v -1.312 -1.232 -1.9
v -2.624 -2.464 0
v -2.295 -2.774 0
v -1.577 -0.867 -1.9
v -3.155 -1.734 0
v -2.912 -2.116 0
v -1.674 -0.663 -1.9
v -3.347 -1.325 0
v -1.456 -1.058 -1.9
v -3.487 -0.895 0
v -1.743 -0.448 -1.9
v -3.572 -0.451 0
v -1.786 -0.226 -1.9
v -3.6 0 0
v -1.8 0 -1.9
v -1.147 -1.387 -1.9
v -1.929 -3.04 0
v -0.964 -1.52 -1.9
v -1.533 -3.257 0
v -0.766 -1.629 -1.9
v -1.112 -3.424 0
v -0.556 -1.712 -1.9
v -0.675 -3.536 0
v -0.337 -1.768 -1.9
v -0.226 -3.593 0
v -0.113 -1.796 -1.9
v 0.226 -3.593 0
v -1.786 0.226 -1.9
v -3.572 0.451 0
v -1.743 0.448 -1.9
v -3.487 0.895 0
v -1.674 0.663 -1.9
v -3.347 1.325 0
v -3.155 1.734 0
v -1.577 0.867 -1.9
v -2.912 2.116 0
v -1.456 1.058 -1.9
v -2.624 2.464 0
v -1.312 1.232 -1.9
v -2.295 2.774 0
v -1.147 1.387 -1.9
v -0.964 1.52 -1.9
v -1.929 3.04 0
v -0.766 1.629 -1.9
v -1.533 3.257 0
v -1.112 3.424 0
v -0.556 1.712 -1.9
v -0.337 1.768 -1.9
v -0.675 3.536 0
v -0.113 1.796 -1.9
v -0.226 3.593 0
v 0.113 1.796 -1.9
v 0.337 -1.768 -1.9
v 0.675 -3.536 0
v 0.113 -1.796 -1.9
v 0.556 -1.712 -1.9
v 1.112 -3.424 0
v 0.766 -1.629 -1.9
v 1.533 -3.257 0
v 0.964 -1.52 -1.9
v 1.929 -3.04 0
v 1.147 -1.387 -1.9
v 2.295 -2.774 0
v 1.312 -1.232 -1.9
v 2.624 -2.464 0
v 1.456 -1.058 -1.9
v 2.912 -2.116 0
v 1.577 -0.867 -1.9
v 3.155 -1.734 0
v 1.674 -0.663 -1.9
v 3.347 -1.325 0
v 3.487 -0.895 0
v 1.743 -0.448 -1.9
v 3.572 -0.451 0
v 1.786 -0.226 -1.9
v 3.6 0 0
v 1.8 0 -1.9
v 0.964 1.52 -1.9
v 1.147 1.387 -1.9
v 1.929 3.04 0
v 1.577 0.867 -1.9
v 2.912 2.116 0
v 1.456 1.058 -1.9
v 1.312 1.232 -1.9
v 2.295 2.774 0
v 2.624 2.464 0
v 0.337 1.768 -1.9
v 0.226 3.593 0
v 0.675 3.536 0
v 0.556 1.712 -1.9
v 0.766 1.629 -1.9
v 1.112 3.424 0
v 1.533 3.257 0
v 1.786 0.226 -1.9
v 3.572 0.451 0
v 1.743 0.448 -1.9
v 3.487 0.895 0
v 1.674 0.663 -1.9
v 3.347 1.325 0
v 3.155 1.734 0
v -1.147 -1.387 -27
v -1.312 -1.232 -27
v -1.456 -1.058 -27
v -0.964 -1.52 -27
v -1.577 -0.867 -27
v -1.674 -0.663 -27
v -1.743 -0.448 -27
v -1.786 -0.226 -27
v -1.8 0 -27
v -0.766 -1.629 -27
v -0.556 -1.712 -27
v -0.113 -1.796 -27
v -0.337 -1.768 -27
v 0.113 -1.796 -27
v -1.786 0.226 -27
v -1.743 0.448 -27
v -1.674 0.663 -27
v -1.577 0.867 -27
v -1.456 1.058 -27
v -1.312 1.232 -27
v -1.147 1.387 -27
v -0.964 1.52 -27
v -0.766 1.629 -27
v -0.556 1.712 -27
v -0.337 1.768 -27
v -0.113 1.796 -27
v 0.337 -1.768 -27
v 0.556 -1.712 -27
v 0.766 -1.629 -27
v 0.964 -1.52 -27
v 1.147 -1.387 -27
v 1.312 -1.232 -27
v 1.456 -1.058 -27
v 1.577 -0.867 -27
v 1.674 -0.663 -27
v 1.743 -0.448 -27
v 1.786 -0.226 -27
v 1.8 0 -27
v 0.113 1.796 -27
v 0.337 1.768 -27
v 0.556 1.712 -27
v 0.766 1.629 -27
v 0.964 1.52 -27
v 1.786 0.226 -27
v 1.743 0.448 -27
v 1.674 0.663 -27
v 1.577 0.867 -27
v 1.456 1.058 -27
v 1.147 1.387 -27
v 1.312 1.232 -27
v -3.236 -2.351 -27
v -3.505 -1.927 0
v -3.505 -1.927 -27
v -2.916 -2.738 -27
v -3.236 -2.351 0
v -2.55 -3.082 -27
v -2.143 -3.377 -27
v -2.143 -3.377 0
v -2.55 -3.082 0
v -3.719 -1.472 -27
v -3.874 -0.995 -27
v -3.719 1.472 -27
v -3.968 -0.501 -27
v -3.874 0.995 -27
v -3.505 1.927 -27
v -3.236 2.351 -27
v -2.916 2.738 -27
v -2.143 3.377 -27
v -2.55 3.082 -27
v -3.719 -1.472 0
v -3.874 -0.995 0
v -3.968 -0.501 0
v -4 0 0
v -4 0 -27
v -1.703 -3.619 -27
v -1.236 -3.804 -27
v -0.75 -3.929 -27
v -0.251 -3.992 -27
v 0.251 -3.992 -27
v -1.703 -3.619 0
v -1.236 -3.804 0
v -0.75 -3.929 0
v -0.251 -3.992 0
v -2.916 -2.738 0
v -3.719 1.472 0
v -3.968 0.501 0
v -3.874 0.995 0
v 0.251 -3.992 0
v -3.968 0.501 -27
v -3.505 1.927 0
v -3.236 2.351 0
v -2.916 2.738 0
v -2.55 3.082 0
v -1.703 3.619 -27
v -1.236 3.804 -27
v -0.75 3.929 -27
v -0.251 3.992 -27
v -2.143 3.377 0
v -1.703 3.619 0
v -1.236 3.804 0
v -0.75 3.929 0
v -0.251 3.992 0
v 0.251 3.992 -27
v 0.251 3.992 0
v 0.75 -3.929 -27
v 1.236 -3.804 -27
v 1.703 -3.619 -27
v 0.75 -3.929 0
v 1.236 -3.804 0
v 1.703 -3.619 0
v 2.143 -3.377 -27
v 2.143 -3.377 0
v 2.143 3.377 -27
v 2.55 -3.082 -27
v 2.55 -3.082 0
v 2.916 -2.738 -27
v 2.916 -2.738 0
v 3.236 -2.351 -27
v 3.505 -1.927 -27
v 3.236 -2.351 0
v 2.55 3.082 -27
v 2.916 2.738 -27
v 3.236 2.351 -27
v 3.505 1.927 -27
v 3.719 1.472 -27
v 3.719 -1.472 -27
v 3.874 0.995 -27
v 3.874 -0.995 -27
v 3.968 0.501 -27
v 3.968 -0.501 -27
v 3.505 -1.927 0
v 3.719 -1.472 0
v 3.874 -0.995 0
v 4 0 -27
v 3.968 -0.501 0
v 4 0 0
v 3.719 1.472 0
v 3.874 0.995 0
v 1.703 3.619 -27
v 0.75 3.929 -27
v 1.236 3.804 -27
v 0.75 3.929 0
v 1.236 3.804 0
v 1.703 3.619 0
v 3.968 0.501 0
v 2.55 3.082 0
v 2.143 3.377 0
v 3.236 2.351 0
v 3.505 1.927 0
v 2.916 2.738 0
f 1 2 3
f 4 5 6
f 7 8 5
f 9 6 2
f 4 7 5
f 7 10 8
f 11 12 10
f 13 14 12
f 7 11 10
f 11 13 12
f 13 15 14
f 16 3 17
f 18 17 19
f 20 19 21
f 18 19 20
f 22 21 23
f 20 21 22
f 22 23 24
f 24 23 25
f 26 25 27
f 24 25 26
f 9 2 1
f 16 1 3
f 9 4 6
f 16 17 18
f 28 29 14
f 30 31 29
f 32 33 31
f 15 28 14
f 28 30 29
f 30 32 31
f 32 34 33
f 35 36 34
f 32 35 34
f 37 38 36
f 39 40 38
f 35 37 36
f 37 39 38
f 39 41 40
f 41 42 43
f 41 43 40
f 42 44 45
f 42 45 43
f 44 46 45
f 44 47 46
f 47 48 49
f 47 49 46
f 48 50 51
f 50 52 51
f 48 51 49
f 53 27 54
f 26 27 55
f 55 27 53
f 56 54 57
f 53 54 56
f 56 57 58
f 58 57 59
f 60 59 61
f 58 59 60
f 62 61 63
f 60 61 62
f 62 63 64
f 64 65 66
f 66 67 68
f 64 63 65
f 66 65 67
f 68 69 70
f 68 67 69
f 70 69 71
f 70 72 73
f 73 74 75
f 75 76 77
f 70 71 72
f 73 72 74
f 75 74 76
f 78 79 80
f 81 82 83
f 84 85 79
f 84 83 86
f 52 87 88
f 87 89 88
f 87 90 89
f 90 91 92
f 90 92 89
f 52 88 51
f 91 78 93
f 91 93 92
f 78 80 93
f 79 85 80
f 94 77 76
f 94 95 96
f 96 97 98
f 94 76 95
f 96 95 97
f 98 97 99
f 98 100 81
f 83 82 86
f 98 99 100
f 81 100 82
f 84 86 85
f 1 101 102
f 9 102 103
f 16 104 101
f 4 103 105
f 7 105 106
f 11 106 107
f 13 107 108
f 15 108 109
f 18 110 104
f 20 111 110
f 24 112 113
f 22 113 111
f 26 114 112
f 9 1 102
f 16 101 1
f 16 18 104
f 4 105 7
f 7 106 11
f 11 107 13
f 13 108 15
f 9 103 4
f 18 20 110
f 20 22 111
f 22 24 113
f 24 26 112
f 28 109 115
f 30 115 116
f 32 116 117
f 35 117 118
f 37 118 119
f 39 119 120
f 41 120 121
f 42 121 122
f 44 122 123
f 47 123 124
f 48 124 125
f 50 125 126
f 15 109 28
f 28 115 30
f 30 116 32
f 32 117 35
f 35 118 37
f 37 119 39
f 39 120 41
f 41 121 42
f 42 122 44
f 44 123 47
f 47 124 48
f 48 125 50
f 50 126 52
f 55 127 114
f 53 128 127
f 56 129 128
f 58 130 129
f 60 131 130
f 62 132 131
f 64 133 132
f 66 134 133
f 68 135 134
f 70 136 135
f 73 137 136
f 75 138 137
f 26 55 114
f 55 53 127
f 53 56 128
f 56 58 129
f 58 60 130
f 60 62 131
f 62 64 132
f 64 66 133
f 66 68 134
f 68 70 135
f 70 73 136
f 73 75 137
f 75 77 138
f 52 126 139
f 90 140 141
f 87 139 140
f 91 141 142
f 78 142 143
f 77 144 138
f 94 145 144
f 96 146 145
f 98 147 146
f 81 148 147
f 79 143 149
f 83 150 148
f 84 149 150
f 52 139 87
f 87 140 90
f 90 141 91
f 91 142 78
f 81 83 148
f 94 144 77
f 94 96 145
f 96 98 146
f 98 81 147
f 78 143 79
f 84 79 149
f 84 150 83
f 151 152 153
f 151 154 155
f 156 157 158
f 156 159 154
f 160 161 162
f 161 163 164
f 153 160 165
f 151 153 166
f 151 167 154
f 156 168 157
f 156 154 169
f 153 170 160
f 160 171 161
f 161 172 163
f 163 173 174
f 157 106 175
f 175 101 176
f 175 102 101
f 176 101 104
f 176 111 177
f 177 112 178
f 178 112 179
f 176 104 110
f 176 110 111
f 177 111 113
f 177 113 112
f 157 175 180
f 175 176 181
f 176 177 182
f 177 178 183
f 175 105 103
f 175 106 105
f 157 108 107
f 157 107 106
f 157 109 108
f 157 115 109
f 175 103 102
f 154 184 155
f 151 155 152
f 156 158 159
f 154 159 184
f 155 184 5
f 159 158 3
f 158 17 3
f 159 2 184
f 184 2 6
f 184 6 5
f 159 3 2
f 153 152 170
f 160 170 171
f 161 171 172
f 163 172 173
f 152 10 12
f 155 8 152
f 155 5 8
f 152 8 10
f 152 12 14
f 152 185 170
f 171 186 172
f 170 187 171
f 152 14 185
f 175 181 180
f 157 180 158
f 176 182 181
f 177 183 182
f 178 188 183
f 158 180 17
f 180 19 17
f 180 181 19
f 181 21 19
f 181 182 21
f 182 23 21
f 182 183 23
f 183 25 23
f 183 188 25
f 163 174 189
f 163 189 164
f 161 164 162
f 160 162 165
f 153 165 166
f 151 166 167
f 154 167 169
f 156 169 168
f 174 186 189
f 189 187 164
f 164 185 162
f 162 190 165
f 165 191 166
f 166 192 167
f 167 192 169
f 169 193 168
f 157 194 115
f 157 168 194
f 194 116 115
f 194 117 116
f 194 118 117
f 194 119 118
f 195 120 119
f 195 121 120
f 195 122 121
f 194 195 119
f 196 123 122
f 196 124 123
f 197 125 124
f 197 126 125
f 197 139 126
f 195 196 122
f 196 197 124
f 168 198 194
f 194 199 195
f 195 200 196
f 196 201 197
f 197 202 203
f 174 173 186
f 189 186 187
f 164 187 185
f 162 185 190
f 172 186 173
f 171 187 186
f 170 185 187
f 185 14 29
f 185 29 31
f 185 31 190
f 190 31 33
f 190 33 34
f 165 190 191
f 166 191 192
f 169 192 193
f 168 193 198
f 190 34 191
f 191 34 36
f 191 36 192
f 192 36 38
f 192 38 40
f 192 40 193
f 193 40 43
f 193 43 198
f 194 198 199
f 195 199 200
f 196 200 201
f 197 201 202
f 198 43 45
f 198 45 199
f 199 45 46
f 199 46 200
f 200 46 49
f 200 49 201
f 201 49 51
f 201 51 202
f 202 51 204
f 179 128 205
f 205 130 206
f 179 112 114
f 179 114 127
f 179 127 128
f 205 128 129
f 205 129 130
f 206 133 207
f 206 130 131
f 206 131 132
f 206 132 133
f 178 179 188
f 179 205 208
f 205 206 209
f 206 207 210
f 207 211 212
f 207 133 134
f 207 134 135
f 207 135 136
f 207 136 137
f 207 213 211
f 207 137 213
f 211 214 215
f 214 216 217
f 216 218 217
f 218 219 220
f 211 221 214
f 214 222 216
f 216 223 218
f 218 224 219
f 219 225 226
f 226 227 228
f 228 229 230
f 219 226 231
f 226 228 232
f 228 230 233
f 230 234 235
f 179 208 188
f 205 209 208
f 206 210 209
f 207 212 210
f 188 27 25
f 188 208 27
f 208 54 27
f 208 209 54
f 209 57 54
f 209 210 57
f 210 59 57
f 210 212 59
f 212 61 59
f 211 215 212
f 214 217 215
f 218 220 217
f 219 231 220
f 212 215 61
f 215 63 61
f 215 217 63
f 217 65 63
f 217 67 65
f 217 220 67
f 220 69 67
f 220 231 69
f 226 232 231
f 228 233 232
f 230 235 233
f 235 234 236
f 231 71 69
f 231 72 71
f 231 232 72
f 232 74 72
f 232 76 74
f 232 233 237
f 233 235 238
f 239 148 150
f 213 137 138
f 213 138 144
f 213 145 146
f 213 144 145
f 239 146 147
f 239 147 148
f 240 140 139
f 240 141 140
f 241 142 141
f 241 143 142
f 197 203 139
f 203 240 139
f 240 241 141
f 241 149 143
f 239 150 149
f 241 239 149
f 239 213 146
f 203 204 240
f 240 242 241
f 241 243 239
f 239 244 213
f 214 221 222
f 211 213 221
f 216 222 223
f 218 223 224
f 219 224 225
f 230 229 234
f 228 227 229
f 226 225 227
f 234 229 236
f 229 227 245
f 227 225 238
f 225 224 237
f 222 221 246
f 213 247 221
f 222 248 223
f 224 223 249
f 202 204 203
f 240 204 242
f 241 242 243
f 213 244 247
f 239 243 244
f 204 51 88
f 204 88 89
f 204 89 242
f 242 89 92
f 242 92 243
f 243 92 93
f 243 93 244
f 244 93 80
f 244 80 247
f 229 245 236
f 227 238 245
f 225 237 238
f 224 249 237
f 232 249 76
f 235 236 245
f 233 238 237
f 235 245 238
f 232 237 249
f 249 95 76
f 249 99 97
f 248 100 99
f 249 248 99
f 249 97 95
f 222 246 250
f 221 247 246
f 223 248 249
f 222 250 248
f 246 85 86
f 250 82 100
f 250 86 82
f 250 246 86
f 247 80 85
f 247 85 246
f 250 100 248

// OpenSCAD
$fn = 50;

difference() {
	union() {
		translate(v = [0, 0, -27.0]) {
			cylinder(h = 30, r = 4.0);
		}
	}
	union() {
		translate(v = [0, 0, 0]) {
			rotate(a = [0, 0, 0]) {
				difference() {
					union() {
						translate(v = [0, 0, -30.0]) {
							cylinder(h = 30, r = 1.5);
						}
						translate(v = [0, 0, -1.9]) {
							cylinder(h = 1.9, r1 = 1.8, r2 = 3.6);
						}
						translate(v = [0, 0, -30.0]) {
							cylinder(h = 30, r = 1.8);
						}
						translate(v = [0, 0, -30.0]) {
							cylinder(h = 30, r = 1.5);
						}
					}
					union();
				}
			}
		}
		#cylinder(h = 3, r = 5.0);
	}
}
